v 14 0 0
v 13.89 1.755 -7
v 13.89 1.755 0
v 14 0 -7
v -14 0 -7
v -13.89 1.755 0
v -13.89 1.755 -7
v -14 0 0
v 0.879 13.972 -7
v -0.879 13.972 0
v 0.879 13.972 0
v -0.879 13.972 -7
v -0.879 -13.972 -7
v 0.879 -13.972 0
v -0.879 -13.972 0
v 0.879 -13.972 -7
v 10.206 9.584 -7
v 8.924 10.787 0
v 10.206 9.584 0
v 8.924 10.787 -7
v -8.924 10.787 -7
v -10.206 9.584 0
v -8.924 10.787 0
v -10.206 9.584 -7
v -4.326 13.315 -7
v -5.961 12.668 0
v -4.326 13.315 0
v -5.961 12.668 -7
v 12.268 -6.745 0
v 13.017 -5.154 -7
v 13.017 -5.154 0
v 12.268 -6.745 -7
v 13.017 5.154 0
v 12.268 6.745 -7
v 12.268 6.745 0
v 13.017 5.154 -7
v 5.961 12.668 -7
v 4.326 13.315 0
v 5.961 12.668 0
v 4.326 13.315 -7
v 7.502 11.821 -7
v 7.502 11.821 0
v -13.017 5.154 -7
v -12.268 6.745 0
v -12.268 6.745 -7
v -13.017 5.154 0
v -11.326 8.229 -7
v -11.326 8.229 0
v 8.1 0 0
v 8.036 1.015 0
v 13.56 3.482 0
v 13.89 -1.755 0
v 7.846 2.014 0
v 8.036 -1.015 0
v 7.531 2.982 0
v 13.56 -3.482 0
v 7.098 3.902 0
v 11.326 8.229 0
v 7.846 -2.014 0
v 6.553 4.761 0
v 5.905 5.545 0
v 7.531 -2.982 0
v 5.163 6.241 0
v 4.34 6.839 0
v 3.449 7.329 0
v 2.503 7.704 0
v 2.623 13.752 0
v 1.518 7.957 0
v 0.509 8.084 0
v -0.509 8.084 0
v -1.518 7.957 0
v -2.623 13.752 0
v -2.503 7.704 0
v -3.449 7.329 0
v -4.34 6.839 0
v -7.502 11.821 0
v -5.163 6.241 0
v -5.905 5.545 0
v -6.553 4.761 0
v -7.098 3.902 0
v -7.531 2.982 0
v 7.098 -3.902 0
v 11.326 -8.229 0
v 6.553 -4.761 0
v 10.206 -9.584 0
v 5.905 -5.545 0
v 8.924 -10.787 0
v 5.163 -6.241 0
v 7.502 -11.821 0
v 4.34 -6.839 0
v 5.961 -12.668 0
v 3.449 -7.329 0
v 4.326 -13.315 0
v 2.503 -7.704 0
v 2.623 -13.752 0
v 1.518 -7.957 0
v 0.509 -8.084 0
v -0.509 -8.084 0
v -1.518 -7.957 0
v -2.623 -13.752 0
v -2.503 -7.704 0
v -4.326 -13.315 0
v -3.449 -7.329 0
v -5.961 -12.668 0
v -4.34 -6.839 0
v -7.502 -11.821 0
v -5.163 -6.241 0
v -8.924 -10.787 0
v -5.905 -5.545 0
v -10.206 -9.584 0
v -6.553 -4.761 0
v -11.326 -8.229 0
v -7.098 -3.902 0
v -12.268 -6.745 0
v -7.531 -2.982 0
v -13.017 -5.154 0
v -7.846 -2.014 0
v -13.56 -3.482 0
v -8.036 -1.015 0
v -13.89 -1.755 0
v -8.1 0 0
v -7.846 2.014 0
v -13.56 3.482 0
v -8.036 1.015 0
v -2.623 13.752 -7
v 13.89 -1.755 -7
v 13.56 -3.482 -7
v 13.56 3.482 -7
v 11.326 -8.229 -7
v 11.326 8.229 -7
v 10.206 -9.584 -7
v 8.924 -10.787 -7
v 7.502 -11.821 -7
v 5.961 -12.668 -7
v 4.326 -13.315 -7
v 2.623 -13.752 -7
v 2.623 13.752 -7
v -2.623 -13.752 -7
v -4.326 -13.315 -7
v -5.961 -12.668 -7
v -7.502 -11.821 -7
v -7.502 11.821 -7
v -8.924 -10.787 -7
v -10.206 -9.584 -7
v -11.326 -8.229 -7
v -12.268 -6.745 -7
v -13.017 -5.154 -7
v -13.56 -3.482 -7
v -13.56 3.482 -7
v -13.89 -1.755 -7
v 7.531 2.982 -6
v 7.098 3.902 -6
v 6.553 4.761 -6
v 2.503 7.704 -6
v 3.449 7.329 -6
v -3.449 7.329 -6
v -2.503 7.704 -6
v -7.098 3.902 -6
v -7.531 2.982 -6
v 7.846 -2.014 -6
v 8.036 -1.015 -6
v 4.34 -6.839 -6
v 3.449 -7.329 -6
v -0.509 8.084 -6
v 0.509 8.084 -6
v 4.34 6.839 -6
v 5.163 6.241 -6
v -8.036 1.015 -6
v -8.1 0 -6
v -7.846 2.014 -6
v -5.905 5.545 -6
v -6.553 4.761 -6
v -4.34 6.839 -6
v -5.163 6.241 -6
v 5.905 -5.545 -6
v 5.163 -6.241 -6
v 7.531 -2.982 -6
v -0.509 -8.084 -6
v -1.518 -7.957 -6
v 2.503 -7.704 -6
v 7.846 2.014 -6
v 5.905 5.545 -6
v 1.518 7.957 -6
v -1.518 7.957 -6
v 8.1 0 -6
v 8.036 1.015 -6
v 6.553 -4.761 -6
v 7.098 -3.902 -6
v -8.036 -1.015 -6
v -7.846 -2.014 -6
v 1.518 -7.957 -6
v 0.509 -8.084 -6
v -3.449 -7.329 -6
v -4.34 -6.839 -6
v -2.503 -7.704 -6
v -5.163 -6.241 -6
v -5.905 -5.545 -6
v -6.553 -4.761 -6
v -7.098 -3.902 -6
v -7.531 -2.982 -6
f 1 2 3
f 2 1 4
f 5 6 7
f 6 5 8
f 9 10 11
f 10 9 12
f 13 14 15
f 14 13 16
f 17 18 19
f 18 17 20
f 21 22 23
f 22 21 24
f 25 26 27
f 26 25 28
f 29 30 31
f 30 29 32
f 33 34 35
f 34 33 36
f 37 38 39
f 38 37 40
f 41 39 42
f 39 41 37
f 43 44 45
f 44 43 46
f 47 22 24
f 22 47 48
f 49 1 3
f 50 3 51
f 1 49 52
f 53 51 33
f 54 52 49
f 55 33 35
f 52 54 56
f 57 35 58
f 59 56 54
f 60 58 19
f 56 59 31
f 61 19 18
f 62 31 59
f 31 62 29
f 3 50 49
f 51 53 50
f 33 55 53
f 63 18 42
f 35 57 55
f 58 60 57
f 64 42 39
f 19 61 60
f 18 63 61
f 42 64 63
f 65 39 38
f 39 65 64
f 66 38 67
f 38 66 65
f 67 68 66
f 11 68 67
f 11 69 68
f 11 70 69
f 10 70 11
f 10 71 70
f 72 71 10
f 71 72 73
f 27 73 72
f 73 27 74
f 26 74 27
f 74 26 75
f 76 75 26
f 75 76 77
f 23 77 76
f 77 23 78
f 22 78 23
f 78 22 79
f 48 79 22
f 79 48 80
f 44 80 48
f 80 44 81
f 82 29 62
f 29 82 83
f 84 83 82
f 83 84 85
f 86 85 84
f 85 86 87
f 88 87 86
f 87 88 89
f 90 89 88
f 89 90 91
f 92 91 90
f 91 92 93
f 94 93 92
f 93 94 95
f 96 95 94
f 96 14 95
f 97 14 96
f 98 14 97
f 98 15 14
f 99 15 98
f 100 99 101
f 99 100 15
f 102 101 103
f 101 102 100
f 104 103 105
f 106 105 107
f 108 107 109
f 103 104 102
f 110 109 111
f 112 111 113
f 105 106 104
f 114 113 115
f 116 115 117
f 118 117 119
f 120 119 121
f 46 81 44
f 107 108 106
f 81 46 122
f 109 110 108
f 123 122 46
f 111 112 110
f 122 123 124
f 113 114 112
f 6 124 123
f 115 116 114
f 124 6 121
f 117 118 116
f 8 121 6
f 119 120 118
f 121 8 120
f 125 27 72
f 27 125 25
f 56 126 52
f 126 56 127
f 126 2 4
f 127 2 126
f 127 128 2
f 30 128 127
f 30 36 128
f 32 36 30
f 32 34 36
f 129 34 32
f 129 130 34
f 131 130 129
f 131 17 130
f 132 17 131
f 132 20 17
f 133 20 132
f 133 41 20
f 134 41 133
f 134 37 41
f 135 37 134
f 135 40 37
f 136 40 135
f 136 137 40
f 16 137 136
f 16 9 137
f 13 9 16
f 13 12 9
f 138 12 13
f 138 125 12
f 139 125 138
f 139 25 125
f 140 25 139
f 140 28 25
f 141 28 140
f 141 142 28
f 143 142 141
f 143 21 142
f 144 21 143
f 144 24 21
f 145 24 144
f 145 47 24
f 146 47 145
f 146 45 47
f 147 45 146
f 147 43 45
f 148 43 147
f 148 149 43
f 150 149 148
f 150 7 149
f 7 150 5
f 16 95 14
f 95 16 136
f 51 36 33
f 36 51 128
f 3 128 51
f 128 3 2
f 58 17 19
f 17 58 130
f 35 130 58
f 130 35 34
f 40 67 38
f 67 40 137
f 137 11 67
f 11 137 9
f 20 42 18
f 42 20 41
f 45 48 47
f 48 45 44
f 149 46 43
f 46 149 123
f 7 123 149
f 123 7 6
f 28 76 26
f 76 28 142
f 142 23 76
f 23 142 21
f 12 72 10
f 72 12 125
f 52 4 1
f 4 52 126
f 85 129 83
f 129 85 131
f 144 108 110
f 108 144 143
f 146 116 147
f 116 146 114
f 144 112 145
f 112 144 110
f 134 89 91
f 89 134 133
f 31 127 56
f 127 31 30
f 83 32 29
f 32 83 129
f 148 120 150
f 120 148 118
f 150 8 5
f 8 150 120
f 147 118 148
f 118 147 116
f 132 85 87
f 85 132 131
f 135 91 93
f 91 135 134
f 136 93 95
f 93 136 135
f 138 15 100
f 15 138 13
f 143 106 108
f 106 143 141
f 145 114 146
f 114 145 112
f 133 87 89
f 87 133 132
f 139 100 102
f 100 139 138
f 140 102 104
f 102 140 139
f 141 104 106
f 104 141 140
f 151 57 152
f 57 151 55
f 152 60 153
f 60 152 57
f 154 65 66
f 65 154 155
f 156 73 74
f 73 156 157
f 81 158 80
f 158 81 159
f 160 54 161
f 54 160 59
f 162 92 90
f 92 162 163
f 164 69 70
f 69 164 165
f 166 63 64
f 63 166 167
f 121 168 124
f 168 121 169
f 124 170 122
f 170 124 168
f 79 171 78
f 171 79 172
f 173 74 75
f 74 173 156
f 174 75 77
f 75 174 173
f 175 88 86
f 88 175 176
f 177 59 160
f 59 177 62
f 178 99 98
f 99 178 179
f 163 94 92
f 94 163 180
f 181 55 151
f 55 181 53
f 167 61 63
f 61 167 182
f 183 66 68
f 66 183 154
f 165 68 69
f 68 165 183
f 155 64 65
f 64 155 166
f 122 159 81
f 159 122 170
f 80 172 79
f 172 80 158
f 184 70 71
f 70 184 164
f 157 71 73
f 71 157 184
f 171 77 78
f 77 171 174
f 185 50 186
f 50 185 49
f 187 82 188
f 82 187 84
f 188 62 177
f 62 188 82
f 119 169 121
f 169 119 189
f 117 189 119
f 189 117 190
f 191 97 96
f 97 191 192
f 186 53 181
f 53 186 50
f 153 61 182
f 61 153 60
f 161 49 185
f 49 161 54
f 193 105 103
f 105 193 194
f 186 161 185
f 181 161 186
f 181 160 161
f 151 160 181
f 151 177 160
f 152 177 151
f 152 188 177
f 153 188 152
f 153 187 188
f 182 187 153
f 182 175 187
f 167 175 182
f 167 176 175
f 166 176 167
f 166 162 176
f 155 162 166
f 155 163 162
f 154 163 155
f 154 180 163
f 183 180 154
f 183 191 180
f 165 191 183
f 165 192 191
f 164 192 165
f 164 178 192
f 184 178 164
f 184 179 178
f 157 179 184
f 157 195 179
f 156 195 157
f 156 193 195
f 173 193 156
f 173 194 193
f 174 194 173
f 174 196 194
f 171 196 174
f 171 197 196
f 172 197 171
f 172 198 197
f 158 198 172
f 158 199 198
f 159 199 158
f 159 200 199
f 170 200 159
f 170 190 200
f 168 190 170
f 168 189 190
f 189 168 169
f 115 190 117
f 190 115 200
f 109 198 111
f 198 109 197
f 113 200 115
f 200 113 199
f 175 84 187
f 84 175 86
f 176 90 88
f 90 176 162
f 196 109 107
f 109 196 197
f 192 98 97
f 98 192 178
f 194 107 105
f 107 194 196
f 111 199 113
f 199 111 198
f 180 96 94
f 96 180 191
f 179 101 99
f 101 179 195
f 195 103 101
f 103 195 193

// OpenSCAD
$fn = 50;


difference() {
	union() {
		translate(v = [0, 0, -7.0000000000]) {
			cylinder(h = 7, r = 14.0000000000);
		}
	}
	union() {
		#translate(v = [0, 0, -6.0000000000]) {
			cylinder(h = 6, r = 8.1000000000);
		}
	}
}
